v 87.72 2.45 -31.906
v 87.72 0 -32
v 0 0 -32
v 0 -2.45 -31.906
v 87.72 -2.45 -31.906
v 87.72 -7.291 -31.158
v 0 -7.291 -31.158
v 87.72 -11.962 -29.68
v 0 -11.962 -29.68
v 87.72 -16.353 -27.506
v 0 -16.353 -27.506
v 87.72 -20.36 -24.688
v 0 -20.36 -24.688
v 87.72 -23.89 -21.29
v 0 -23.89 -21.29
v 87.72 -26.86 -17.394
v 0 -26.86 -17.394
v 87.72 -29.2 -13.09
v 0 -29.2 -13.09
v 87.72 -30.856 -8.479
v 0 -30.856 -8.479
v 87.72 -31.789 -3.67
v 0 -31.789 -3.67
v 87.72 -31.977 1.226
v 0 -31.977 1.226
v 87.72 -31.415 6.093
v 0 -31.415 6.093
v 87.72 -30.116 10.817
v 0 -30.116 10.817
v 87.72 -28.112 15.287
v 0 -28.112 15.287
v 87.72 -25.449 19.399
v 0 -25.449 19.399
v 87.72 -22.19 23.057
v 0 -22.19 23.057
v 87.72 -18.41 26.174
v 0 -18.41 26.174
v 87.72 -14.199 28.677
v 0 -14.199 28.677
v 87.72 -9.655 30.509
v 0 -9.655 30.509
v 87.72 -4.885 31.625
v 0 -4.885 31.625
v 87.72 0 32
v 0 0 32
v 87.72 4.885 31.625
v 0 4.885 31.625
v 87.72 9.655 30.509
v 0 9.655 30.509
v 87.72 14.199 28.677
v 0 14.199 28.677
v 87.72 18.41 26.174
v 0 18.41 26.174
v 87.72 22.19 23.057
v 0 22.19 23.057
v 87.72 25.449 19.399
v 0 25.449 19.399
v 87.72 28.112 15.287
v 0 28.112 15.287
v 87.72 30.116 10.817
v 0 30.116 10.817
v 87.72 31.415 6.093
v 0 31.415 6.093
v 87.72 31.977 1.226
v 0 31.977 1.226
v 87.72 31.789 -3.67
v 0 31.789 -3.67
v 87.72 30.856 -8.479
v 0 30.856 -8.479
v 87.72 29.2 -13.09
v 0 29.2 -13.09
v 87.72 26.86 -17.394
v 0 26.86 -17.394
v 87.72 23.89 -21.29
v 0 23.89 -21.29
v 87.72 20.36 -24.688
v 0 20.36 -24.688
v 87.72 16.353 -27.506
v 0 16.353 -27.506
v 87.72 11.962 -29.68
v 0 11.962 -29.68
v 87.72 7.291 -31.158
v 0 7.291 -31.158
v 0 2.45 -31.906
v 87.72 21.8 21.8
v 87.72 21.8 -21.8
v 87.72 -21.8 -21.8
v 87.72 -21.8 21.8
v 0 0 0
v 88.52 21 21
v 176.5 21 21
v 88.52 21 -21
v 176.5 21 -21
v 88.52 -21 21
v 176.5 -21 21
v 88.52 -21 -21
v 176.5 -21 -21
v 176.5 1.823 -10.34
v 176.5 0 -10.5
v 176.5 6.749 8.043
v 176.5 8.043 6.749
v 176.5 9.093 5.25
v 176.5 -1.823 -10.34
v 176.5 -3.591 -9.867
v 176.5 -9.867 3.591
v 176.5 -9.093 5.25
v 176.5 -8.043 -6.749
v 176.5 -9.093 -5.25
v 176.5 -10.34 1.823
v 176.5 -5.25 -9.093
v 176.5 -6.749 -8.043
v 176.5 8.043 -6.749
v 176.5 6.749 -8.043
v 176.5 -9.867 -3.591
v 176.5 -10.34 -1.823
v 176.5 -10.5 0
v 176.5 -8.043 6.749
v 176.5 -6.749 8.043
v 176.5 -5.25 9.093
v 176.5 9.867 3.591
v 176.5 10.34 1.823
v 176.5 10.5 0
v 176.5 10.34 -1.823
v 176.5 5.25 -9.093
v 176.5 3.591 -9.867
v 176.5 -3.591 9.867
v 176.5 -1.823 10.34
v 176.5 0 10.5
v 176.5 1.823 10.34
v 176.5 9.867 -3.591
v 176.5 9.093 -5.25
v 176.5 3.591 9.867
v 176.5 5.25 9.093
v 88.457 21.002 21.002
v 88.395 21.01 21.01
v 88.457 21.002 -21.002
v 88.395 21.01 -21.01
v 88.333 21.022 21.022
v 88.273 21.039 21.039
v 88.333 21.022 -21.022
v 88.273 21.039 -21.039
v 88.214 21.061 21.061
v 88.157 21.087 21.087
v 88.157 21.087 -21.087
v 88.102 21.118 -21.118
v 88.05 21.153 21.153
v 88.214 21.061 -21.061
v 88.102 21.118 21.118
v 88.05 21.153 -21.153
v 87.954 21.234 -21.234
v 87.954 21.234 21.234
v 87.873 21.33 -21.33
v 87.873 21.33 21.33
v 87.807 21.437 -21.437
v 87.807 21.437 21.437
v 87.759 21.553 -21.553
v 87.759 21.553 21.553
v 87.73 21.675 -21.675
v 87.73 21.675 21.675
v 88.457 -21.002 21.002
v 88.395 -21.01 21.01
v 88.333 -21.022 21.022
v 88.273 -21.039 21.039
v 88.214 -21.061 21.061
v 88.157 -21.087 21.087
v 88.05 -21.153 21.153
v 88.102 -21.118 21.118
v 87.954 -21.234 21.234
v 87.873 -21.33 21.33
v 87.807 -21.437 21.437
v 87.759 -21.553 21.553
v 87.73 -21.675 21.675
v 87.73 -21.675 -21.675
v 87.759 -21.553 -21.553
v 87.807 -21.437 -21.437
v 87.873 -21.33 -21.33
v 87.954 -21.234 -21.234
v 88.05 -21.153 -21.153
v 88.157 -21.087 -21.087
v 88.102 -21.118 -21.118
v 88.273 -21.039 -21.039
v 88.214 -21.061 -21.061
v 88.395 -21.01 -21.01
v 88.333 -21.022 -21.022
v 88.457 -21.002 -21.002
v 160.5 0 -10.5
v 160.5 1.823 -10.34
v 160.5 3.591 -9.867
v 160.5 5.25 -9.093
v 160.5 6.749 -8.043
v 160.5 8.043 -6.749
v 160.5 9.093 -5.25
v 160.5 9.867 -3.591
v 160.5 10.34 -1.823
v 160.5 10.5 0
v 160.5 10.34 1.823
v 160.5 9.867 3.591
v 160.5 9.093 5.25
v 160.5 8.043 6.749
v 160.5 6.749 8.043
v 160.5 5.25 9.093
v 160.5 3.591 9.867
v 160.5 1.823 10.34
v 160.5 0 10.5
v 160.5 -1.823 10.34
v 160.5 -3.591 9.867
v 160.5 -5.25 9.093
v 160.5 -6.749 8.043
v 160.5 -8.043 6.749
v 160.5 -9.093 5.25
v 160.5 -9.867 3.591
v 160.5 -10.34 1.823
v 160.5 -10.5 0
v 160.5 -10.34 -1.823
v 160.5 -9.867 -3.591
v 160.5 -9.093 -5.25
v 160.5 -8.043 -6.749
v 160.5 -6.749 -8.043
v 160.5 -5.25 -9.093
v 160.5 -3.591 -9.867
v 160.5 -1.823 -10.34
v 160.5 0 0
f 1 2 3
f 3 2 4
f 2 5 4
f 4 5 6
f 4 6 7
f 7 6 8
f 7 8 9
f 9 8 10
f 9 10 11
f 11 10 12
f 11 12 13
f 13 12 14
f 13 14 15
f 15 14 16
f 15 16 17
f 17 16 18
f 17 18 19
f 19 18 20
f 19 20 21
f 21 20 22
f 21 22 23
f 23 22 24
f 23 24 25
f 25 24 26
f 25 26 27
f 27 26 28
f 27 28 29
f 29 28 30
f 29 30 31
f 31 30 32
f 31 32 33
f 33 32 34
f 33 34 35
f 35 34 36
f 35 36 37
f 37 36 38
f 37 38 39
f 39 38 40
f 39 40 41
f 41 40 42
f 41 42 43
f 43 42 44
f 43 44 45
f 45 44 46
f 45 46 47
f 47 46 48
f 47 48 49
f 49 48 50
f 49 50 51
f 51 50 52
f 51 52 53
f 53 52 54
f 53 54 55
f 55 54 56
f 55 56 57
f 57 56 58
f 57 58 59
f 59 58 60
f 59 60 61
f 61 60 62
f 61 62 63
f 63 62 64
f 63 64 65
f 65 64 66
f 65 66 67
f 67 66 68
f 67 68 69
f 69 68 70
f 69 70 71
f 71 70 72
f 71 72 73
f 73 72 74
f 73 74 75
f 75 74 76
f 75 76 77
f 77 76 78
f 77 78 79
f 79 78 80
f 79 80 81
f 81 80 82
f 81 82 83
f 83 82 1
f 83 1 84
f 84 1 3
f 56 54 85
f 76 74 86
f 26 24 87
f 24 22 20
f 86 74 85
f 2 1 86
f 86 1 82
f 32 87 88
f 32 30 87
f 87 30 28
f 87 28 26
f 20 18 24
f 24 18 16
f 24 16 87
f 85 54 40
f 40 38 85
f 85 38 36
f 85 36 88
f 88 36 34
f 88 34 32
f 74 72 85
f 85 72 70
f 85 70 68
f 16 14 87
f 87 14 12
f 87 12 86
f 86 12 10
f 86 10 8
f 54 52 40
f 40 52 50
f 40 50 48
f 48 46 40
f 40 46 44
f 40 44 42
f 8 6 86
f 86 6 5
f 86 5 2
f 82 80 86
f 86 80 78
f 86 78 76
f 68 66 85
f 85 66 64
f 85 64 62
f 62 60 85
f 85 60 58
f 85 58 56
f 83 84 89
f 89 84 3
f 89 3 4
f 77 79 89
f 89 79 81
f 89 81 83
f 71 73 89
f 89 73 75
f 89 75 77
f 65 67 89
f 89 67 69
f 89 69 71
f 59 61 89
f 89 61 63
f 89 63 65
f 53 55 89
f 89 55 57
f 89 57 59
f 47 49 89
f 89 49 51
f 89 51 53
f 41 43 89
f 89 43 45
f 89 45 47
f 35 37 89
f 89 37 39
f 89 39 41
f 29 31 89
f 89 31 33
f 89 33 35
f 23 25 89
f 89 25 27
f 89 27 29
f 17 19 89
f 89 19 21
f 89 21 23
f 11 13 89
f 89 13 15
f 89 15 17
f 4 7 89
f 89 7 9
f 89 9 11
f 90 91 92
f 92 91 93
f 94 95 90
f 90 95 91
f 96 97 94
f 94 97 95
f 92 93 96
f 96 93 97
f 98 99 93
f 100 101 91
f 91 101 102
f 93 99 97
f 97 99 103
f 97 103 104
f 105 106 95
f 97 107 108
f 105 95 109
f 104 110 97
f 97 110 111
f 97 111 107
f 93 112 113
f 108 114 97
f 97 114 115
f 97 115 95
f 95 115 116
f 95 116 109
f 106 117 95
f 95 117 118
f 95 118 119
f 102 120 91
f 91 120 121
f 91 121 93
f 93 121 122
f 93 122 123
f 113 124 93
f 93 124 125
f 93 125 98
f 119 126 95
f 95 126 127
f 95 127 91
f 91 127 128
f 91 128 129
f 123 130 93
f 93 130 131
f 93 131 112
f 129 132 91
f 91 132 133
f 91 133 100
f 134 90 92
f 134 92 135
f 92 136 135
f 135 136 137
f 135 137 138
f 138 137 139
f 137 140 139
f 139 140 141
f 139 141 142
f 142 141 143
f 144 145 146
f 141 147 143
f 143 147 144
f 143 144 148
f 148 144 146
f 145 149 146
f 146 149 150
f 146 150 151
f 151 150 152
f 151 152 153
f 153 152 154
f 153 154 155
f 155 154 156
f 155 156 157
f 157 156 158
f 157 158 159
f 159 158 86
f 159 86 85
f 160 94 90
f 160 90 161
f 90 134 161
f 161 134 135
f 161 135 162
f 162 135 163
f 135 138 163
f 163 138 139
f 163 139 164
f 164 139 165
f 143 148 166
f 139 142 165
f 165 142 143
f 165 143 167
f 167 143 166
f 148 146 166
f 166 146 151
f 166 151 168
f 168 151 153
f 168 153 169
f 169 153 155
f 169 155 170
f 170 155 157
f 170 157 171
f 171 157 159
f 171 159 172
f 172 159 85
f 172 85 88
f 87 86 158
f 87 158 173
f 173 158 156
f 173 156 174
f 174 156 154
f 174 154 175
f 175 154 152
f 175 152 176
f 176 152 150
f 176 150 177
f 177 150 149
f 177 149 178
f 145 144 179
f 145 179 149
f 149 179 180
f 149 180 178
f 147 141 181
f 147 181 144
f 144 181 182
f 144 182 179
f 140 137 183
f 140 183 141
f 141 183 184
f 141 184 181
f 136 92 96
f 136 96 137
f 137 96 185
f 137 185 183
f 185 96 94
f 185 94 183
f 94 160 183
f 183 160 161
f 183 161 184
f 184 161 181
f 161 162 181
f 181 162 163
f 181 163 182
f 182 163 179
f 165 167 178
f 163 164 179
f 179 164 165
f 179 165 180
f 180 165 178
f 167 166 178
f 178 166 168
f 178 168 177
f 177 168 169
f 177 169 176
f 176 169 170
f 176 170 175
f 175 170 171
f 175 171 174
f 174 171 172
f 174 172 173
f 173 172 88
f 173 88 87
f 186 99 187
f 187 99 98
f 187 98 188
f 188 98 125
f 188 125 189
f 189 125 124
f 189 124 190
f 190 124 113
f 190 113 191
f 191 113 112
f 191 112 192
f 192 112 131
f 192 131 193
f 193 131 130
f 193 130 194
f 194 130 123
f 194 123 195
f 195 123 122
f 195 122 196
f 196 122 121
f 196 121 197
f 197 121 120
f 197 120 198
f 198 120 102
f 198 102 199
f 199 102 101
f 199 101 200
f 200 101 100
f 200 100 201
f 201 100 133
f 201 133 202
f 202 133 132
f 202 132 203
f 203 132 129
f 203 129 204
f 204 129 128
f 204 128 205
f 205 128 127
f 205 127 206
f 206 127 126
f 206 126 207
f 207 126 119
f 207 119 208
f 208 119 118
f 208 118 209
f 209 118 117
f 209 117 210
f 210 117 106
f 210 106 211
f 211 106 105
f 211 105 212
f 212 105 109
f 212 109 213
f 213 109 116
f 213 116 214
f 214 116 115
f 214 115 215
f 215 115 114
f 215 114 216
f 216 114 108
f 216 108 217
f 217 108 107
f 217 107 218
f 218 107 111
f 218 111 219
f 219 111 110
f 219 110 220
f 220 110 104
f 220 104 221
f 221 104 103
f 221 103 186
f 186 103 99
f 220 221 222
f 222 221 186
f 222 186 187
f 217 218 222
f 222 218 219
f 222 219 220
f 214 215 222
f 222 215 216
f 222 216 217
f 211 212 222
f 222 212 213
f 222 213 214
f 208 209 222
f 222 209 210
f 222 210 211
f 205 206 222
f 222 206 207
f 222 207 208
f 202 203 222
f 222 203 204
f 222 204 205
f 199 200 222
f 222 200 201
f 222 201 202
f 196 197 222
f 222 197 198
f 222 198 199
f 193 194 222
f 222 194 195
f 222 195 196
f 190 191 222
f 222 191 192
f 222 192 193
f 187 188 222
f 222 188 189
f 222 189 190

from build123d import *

# Parameters (mm, degrees)
SKETCH1_R           = 32
BOSS_EXTRUDE1_DEPTH = 87.72
SKETCH2_W           = 42
SKETCH2_H           = 42
BOSS_EXTRUDE2_DEPTH = 88.78
FILLET2_R           = 0.8
SKETCH3_R           = 10.5
CUT_EXTRUDE1_DEPTH  = 16


with BuildPart() as part:
    # Sketch1 → Boss-Extrude1 (new body)
    with BuildSketch(Plane(origin=(0, 0, 0), x_dir=(0, 0, -1), z_dir=(1, 0, 0))):
        Circle(SKETCH1_R)
    extrude(amount=BOSS_EXTRUDE1_DEPTH)

    # Sketch2 → Boss-Extrude2 (add)
    with BuildSketch(Plane(origin=(87.72, 0, 0), x_dir=(0, 0, -1), z_dir=(1, 0, 0))):
        Rectangle(SKETCH2_W, SKETCH2_H)
    extrude(amount=BOSS_EXTRUDE2_DEPTH)

    # Fillet2
    fillet2_edges = [part.edges().sort_by_distance(p)[0] for p in [
        (87.72, -21, 0),
        (87.72, 0, -21),
        (87.72, 21, 0),
        (87.72, 0, 21),
    ]]
    fillet(fillet2_edges, radius=FILLET2_R)

    # Sketch3 → Cut-Extrude1 (cut)
    with BuildSketch(Plane(origin=(176.5, 0, 0), x_dir=(0, 0, -1), z_dir=(1, 0, 0))):
        Circle(SKETCH3_R)
    extrude(amount=-CUT_EXTRUDE1_DEPTH, mode=Mode.SUBTRACT)


solid = part.part
